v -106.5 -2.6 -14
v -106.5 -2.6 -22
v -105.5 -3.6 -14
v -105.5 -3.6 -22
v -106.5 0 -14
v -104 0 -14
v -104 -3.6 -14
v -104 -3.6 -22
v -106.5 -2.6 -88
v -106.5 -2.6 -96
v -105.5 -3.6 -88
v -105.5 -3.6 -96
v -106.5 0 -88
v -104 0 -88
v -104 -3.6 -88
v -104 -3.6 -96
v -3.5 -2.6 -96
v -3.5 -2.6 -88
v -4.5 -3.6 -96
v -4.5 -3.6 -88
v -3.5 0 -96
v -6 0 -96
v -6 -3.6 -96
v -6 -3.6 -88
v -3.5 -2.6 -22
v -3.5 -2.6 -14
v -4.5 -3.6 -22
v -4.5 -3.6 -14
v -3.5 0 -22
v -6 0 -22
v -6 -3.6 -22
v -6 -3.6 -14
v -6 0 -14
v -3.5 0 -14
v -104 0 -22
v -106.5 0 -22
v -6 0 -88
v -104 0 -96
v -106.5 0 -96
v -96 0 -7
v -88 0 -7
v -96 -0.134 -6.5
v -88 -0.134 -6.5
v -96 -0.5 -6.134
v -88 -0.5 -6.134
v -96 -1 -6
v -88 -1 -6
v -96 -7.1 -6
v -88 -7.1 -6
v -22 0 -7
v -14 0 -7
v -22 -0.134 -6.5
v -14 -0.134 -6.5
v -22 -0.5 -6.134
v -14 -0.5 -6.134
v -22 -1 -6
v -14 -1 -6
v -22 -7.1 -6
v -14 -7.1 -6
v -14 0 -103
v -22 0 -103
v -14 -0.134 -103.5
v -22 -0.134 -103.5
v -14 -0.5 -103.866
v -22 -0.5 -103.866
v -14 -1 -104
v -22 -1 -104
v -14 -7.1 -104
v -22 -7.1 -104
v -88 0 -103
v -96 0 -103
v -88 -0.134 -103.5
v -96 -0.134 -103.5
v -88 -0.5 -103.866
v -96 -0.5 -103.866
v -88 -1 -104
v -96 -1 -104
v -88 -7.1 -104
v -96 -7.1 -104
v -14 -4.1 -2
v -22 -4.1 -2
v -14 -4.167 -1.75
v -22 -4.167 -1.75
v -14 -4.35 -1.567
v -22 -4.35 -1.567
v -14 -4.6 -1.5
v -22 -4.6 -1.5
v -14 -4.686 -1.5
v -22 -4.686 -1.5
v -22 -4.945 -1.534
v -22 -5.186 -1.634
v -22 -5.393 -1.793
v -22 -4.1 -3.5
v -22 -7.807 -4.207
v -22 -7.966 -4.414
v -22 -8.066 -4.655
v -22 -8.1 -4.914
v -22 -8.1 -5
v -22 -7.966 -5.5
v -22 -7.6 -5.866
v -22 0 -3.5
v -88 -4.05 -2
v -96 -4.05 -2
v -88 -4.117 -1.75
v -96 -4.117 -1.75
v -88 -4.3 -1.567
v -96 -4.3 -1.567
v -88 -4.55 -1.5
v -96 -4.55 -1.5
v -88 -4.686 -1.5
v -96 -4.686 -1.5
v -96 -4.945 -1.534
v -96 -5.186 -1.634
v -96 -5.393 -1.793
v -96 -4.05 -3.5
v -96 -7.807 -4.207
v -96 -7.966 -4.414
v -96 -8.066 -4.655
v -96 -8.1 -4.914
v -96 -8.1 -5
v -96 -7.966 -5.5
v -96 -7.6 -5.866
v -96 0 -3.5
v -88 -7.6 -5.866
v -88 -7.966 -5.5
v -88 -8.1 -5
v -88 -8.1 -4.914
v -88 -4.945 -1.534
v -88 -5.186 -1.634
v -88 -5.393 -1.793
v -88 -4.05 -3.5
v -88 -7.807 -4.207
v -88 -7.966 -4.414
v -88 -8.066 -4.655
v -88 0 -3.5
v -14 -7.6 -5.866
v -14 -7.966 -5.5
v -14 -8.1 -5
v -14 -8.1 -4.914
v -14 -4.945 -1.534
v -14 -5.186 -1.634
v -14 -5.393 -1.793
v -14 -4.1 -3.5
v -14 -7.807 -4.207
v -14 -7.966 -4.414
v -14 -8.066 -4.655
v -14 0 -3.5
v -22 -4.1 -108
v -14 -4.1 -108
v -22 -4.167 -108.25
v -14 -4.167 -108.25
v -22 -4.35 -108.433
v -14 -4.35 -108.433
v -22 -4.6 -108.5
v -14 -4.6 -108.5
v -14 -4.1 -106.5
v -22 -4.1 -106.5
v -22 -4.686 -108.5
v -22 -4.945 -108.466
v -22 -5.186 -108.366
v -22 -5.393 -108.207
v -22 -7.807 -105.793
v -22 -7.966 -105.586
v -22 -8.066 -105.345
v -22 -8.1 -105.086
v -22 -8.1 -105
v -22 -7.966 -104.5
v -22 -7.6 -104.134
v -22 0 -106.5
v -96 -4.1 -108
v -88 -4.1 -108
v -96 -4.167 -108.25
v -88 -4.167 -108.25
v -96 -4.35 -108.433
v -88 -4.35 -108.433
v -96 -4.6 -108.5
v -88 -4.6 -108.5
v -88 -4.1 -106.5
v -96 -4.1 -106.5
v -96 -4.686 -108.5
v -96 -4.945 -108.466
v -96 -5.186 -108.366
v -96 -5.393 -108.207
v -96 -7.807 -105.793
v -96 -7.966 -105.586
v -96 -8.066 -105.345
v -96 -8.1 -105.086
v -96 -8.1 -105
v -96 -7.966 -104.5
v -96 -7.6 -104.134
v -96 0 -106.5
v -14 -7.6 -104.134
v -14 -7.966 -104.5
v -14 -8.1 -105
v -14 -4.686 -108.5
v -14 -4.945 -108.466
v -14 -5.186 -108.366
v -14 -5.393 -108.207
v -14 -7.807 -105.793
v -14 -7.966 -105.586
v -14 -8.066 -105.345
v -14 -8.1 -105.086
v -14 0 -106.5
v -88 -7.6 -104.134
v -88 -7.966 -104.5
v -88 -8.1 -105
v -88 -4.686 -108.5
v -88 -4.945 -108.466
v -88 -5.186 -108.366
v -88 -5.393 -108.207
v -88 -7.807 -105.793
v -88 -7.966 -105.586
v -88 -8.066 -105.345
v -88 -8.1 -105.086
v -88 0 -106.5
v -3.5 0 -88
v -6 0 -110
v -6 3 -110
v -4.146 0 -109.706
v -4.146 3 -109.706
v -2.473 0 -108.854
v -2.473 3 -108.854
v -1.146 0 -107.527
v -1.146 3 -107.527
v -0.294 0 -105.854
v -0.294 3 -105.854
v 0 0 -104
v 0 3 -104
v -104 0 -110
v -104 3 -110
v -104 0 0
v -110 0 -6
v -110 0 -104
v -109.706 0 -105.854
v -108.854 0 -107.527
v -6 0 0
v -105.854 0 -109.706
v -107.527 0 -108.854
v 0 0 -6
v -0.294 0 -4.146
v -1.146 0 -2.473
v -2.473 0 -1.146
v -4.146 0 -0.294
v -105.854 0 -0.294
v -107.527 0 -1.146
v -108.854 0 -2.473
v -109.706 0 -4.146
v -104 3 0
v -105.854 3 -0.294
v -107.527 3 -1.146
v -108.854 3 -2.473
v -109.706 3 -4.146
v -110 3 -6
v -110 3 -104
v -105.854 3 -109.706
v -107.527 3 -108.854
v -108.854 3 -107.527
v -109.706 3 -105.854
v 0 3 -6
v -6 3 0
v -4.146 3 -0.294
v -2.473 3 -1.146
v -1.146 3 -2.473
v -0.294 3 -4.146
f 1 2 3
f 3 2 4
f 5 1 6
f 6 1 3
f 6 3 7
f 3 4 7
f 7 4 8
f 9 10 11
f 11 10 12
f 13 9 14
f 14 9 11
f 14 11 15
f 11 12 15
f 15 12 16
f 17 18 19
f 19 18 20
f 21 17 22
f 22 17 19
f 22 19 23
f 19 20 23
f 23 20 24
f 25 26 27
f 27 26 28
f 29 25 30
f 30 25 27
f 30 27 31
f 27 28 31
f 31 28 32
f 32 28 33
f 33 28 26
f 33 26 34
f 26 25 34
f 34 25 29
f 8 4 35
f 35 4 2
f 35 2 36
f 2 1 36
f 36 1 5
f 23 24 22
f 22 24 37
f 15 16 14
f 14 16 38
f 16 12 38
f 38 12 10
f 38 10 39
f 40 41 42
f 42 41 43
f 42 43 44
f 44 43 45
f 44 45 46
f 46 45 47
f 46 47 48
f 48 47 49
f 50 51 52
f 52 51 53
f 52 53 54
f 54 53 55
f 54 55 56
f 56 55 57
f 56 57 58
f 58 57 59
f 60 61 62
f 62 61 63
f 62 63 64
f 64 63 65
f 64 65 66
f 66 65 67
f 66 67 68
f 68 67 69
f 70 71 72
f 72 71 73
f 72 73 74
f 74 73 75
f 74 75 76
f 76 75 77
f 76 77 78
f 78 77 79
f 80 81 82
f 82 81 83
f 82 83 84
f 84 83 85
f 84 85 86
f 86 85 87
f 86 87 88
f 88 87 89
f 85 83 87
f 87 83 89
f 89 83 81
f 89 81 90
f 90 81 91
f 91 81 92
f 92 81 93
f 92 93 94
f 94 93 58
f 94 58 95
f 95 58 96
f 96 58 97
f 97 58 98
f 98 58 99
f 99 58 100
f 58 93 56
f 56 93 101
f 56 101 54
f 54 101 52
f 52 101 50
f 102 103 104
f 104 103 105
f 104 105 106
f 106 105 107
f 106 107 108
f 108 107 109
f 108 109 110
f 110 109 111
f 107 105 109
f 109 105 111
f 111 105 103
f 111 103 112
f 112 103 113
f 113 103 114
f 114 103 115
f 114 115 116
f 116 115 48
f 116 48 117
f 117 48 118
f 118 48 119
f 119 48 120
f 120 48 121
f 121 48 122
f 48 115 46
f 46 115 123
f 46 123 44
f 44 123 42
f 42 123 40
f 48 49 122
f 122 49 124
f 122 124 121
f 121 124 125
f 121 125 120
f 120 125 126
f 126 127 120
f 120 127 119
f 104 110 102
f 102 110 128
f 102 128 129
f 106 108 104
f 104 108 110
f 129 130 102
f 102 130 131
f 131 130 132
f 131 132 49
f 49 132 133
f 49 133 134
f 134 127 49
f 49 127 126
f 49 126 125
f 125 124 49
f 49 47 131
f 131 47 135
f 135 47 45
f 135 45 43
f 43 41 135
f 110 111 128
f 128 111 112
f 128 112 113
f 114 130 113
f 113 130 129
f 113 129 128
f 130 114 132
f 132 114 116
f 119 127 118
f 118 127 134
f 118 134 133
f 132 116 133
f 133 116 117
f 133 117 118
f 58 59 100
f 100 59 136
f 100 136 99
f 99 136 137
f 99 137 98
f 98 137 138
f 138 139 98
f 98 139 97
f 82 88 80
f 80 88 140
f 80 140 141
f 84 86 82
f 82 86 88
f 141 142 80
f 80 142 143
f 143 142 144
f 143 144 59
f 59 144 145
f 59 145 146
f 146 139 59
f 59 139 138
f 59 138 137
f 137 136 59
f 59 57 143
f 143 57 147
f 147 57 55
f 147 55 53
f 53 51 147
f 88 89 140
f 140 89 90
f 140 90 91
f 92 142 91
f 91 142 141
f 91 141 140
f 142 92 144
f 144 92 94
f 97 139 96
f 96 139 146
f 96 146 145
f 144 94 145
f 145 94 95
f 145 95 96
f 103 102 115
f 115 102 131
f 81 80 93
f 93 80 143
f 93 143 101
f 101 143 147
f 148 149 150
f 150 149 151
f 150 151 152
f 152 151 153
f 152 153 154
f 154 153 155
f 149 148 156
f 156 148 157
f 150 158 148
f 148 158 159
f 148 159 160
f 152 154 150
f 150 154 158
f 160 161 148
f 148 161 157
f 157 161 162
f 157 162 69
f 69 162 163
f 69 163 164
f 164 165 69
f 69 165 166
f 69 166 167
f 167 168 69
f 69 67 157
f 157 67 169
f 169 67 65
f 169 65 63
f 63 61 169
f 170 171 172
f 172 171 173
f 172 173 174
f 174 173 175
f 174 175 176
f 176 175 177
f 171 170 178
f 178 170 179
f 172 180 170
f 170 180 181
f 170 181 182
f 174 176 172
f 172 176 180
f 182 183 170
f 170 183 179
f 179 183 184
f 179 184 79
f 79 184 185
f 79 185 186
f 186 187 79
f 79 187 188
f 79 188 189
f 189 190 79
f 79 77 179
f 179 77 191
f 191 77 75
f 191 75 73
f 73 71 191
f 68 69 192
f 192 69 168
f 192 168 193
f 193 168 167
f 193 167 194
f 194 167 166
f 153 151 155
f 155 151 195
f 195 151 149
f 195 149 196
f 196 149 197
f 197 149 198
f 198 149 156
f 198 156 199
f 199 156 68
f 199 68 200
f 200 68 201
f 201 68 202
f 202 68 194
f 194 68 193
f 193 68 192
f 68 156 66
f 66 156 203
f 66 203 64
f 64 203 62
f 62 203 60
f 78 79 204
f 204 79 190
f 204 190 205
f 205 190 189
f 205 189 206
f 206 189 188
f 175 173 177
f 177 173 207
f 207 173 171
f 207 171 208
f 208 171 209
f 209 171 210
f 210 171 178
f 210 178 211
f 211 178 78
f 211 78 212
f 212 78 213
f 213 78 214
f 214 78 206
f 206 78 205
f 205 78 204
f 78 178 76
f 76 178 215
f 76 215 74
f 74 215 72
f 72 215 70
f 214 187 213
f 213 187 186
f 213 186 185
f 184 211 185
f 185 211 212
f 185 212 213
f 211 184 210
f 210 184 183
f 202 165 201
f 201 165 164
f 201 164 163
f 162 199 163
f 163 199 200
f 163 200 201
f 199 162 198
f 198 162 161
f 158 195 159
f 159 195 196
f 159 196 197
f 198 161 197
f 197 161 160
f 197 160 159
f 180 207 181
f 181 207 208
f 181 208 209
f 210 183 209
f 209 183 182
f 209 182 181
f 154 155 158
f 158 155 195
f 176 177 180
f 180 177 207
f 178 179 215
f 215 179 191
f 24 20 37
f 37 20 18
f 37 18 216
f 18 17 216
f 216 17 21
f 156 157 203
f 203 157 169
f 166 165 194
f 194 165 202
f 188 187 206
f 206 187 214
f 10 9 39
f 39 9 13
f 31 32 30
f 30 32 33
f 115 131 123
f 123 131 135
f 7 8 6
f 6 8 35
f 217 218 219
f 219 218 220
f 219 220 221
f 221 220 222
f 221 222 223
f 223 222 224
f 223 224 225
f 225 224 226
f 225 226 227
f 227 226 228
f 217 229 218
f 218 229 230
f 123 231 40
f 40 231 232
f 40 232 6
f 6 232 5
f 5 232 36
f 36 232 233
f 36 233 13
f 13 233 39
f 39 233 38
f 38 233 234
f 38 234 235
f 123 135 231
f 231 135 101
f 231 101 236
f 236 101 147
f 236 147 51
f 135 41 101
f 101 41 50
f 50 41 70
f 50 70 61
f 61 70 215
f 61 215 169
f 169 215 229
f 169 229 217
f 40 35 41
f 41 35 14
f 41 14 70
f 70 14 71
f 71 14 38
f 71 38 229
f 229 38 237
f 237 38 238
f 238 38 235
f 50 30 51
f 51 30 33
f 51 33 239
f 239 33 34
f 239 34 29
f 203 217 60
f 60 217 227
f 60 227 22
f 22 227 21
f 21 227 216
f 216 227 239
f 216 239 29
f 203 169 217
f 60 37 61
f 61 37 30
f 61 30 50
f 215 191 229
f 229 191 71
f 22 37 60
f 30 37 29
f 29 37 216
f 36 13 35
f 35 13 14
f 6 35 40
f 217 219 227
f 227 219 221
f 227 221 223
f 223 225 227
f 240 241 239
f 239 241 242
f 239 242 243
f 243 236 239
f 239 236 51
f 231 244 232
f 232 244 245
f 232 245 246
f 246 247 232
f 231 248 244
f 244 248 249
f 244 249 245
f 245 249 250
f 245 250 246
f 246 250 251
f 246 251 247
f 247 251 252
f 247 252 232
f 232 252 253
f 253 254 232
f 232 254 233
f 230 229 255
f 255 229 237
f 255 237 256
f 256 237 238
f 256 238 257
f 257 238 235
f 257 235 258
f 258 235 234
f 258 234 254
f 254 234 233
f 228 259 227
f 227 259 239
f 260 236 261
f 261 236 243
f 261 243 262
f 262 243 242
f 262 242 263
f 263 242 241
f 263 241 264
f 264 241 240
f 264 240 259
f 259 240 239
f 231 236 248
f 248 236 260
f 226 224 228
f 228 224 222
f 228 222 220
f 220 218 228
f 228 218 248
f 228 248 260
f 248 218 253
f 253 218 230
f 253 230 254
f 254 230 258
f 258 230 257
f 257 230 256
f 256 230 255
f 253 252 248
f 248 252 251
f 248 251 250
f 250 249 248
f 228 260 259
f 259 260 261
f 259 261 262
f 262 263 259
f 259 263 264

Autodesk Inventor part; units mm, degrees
ref_plane "YZ Plane" through (0, 0, 0) normal (1, 0, 0) x (0, 1, 0)
ref_plane "XZ Plane" through (0, 0, 0) normal (0, 1, 0) x (-1, 0, 0)
ref_plane "XY Plane" through (0, 0, 0) normal (0, 0, 1) x (1, 0, 0)
sketch "Sketch1" plane through (0, 0, 0) normal (0, 1, 0) x (-1, 0, 0)
  line L0 (6, 0) -> (110, 0)
  line L1 (110, 0) -> (110, -104)
  line L2 (104, -110) -> (0, -110)
  line L3 (0, -110) -> (0, -6)
  arc A0 (104, -110) -> (110, -104) centre (104, -104) ccw
  arc A1 (6, 0) -> (0, -6) centre (6, -6) ccw
  point P0 (0, 0)
  point P1 (110, -110)
  dimension "d0" = 110
  dimension "d1" = 110
  dimension "d2" = 6
extrude "Extrusion1" add sketch "Sketch1" along normal blind 3
fillet "Fillet1" radius 6 2 edges at (-110, 1.5, 0) (0, 1.5, -110)
sketch "Sketch3" plane through (0, 0, 0) normal (0, -1, 0) x (1, 0, 0)
  line L0 (-88, -106.5) -> (-96, -106.5)
  line L1 (-96, -106.5) -> (-96, -104)
  line L2 (-96, -104) -> (-88, -104)
  line L3 (-88, -104) -> (-88, -106.5)
  line L4 (-6, -110) -> (-104, -110) projected
  line L5 (-110, -104) -> (-110, -6) projected
  line L6 (-14, -106.5) -> (-22, -106.5)
  line L7 (-22, -106.5) -> (-22, -104)
  line L8 (-22, -104) -> (-14, -104)
  line L9 (-14, -104) -> (-14, -106.5)
  line L10 (-88, -6) -> (-96, -6)
  line L11 (-96, -6) -> (-96, -3.5)
  line L12 (-96, -3.5) -> (-88, -3.5)
  line L13 (-88, -3.5) -> (-88, -6)
  line L14 (-14, -6) -> (-22, -6)
  line L15 (-22, -6) -> (-22, -3.5)
  line L16 (-22, -3.5) -> (-14, -3.5)
  line L17 (-14, -3.5) -> (-14, -6)
  line L18 (-106.5, -96) -> (-104, -96)
  line L19 (-104, -96) -> (-104, -88)
  line L20 (-104, -88) -> (-106.5, -88)
  line L21 (-106.5, -88) -> (-106.5, -96)
  line L22 (-106.5, -22) -> (-104, -22)
  line L23 (-104, -14) -> (-106.5, -14)
  line L24 (-104, -22) -> (-104, -14)
  line L25 (-106.5, -14) -> (-106.5, -22)
  line L26 (-6, -96) -> (-3.5, -96)
  line L27 (-3.5, -88) -> (-6, -88)
  line L28 (-3.5, -96) -> (-3.5, -88)
  line L29 (-6, -88) -> (-6, -96)
  line L30 (-6, -22) -> (-3.5, -22)
  line L31 (-3.5, -14) -> (-6, -14)
  line L32 (-3.5, -22) -> (-3.5, -14)
  line L33 (-6, -14) -> (-6, -22)
  point P0 (0, 0)
  dimension "d20" = 8
  dimension "d21" = 2.5
  dimension "d22" = 3.5
  dimension "d23" = 14
  dimension "d26" = 74
  dimension "d29" = 100.5
  dimension "d55" = 8
  dimension "d56" = 2.5
  dimension "d57" = 14
  dimension "d60" = 74
  dimension "d63" = 100.5
  dimension "d66" = 3.5
extrude "Extrusion3" add sketch "Sketch3" along normal blind 8.1
sketch "Sketch4" plane through (-88, 0, -106.5) normal (0, 0, -1) x (-1, 0, 0)
  line L0 (0, 0) -> (0, -8.1) projected
  line L1 (8, -8.1) -> (0, -8.1)
  line L2 (0, -8.1) -> (0, -4.1)
  line L3 (0, -4.1) -> (8, -4.1)
  line L4 (8, -4.1) -> (8, -8.1)
  line L5 (8, -8.1) -> (0, -8.1) projected
  line L6 (8, 0) -> (8, -8.1) projected
  line L7 (-66, 0) -> (-66, -8.1) projected
  line L8 (-74, 0) -> (-74, -8.1) projected
  line L9 (-66, -8.1) -> (-74, -8.1)
  line L10 (-74, -8.1) -> (-74, -4.1)
  line L11 (-74, -4.1) -> (-66, -4.1)
  line L12 (-66, -4.1) -> (-66, -8.1)
  point P0 (-88, 0)
  point P1 (0, -8.1)
  dimension "d34" = 4
  dimension "d35" = 0
  dimension "d36" = 0
  dimension "d37" = 4
extrude "Extrusion4" add sketch "Sketch4" along normal blind 2
chamfer "Chamfer1" distance 3 angle 45 2 edges at (-92, -8.1, -108.5) (-18, -8.1, -108.5)
fillet "Fillet2" radius 1 6 edges at (-92, -5.1, -108.5) (-18, -5.1, -108.5) (-18, -8.1, -105.5) (-92, -8.1, -105.5) (-92, -8.1, -104) (-18, -8.1, -104)
fillet "Fillet3" radius 0.5 2 edges at (-92, -4.1, -108.5) (-18, -4.1, -108.5)
sketch "Sketch5" plane through (-96, 0, -3.5) normal (0, 0, 1) x (1, 0, 0)
  line L0 (8, 0) -> (8, -8.1) projected
  line L1 (0, 0) -> (0, -8.1) projected
  line L2 (8, -8.1) -> (0, -8.1)
  line L3 (0, -8.1) -> (0, -4.05)
  line L4 (0, -4.05) -> (8, -4.05)
  line L5 (8, -4.05) -> (8, -8.1)
  line L6 (82, -8.1) -> (74, -8.1) projected
  line L7 (82, -8.1) -> (74, -8.1)
  line L8 (74, -8.1) -> (74, -4.1)
  line L9 (74, -4.1) -> (82, -4.1)
  line L10 (82, -4.1) -> (82, -8.1)
  point P0 (96, 0)
  point P1 (8, -4.05)
  dimension "d45" = 4.05
extrude "Extrusion5" add sketch "Sketch5" along normal blind 2
chamfer "Chamfer2" distance 3 angle 45 2 edges at (-92, -8.1, -1.5) (-18, -8.1, -1.5)
fillet "Fillet4" radius 1 6 edges at (-18, -8.1, -4.5) (-18, -5.1, -1.5) (-18, -8.1, -6) (-92, -8.1, -4.5) (-92, -5.1, -1.5) (-92, -8.1, -6)
fillet "Fillet5" radius 0.5 2 edges at (-92, -4.05, -1.5) (-18, -4.1, -1.5)
fillet "Fillet6" radius 1 1 edges at (-92, 0, -104)
fillet "Fillet7" radius 1 3 edges at (-18, 0, -104) (-18, 0, -6) (-92, 0, -6)
sketch "Sketch6" plane through (0, -8.1, 0) normal (0, -1, 0) x (1, 0, 0)
  line L0 (-104, -96) -> (-106.5, -96) projected
  line L1 (-104, -88) -> (-104, -96) projected
  line L2 (-106.5, -96) -> (-104, -96)
  line L3 (-104, -96) -> (-104, -88)
  line L4 (-104, -88) -> (-106.5, -88)
  line L5 (-106.5, -88) -> (-106.5, -96)
  line L6 (-106.5, -22) -> (-106.5, -14) projected
  line L7 (-106.5, -22) -> (-104, -22)
  line L8 (-104, -22) -> (-104, -14)
  line L9 (-104, -14) -> (-106.5, -14)
  line L10 (-106.5, -14) -> (-106.5, -22)
  line L11 (-6, -14) -> (-6, -22) projected
  line L12 (-3.5, -22) -> (-3.5, -14) projected
  line L13 (-6, -22) -> (-3.5, -22)
  line L14 (-3.5, -22) -> (-3.5, -14)
  line L15 (-3.5, -14) -> (-6, -14)
  line L16 (-6, -14) -> (-6, -22)
  line L17 (-3.5, -88) -> (-6, -88)
  line L18 (-6, -88) -> (-6, -96)
  line L19 (-6, -96) -> (-3.5, -96)
  line L20 (-3.5, -96) -> (-3.5, -88)
  point P0 (0, 0)
extrude "Extrusion6" cut sketch "Sketch6" against normal blind 4.5
chamfer "Chamfer3" distance 1 angle 45 4 edges at (-3.5, -3.6, -18) (-3.5, -3.6, -92) (-106.5, -3.6, -92) (-106.5, -3.6, -18)
equation "\"d26\" = d0 - d20 - 2 * d23"
equation "\"d29\" = d1 - d21 - 2 * d22"
equation "\"d55\" = d20"
equation "\"d56\" = d21"
equation "\"d57\" = d23"
equation "\"d60\" = d26"
equation "\"d63\" = d29"
equation "\"d66\" = d22"
properties part number "Cover side-2"
